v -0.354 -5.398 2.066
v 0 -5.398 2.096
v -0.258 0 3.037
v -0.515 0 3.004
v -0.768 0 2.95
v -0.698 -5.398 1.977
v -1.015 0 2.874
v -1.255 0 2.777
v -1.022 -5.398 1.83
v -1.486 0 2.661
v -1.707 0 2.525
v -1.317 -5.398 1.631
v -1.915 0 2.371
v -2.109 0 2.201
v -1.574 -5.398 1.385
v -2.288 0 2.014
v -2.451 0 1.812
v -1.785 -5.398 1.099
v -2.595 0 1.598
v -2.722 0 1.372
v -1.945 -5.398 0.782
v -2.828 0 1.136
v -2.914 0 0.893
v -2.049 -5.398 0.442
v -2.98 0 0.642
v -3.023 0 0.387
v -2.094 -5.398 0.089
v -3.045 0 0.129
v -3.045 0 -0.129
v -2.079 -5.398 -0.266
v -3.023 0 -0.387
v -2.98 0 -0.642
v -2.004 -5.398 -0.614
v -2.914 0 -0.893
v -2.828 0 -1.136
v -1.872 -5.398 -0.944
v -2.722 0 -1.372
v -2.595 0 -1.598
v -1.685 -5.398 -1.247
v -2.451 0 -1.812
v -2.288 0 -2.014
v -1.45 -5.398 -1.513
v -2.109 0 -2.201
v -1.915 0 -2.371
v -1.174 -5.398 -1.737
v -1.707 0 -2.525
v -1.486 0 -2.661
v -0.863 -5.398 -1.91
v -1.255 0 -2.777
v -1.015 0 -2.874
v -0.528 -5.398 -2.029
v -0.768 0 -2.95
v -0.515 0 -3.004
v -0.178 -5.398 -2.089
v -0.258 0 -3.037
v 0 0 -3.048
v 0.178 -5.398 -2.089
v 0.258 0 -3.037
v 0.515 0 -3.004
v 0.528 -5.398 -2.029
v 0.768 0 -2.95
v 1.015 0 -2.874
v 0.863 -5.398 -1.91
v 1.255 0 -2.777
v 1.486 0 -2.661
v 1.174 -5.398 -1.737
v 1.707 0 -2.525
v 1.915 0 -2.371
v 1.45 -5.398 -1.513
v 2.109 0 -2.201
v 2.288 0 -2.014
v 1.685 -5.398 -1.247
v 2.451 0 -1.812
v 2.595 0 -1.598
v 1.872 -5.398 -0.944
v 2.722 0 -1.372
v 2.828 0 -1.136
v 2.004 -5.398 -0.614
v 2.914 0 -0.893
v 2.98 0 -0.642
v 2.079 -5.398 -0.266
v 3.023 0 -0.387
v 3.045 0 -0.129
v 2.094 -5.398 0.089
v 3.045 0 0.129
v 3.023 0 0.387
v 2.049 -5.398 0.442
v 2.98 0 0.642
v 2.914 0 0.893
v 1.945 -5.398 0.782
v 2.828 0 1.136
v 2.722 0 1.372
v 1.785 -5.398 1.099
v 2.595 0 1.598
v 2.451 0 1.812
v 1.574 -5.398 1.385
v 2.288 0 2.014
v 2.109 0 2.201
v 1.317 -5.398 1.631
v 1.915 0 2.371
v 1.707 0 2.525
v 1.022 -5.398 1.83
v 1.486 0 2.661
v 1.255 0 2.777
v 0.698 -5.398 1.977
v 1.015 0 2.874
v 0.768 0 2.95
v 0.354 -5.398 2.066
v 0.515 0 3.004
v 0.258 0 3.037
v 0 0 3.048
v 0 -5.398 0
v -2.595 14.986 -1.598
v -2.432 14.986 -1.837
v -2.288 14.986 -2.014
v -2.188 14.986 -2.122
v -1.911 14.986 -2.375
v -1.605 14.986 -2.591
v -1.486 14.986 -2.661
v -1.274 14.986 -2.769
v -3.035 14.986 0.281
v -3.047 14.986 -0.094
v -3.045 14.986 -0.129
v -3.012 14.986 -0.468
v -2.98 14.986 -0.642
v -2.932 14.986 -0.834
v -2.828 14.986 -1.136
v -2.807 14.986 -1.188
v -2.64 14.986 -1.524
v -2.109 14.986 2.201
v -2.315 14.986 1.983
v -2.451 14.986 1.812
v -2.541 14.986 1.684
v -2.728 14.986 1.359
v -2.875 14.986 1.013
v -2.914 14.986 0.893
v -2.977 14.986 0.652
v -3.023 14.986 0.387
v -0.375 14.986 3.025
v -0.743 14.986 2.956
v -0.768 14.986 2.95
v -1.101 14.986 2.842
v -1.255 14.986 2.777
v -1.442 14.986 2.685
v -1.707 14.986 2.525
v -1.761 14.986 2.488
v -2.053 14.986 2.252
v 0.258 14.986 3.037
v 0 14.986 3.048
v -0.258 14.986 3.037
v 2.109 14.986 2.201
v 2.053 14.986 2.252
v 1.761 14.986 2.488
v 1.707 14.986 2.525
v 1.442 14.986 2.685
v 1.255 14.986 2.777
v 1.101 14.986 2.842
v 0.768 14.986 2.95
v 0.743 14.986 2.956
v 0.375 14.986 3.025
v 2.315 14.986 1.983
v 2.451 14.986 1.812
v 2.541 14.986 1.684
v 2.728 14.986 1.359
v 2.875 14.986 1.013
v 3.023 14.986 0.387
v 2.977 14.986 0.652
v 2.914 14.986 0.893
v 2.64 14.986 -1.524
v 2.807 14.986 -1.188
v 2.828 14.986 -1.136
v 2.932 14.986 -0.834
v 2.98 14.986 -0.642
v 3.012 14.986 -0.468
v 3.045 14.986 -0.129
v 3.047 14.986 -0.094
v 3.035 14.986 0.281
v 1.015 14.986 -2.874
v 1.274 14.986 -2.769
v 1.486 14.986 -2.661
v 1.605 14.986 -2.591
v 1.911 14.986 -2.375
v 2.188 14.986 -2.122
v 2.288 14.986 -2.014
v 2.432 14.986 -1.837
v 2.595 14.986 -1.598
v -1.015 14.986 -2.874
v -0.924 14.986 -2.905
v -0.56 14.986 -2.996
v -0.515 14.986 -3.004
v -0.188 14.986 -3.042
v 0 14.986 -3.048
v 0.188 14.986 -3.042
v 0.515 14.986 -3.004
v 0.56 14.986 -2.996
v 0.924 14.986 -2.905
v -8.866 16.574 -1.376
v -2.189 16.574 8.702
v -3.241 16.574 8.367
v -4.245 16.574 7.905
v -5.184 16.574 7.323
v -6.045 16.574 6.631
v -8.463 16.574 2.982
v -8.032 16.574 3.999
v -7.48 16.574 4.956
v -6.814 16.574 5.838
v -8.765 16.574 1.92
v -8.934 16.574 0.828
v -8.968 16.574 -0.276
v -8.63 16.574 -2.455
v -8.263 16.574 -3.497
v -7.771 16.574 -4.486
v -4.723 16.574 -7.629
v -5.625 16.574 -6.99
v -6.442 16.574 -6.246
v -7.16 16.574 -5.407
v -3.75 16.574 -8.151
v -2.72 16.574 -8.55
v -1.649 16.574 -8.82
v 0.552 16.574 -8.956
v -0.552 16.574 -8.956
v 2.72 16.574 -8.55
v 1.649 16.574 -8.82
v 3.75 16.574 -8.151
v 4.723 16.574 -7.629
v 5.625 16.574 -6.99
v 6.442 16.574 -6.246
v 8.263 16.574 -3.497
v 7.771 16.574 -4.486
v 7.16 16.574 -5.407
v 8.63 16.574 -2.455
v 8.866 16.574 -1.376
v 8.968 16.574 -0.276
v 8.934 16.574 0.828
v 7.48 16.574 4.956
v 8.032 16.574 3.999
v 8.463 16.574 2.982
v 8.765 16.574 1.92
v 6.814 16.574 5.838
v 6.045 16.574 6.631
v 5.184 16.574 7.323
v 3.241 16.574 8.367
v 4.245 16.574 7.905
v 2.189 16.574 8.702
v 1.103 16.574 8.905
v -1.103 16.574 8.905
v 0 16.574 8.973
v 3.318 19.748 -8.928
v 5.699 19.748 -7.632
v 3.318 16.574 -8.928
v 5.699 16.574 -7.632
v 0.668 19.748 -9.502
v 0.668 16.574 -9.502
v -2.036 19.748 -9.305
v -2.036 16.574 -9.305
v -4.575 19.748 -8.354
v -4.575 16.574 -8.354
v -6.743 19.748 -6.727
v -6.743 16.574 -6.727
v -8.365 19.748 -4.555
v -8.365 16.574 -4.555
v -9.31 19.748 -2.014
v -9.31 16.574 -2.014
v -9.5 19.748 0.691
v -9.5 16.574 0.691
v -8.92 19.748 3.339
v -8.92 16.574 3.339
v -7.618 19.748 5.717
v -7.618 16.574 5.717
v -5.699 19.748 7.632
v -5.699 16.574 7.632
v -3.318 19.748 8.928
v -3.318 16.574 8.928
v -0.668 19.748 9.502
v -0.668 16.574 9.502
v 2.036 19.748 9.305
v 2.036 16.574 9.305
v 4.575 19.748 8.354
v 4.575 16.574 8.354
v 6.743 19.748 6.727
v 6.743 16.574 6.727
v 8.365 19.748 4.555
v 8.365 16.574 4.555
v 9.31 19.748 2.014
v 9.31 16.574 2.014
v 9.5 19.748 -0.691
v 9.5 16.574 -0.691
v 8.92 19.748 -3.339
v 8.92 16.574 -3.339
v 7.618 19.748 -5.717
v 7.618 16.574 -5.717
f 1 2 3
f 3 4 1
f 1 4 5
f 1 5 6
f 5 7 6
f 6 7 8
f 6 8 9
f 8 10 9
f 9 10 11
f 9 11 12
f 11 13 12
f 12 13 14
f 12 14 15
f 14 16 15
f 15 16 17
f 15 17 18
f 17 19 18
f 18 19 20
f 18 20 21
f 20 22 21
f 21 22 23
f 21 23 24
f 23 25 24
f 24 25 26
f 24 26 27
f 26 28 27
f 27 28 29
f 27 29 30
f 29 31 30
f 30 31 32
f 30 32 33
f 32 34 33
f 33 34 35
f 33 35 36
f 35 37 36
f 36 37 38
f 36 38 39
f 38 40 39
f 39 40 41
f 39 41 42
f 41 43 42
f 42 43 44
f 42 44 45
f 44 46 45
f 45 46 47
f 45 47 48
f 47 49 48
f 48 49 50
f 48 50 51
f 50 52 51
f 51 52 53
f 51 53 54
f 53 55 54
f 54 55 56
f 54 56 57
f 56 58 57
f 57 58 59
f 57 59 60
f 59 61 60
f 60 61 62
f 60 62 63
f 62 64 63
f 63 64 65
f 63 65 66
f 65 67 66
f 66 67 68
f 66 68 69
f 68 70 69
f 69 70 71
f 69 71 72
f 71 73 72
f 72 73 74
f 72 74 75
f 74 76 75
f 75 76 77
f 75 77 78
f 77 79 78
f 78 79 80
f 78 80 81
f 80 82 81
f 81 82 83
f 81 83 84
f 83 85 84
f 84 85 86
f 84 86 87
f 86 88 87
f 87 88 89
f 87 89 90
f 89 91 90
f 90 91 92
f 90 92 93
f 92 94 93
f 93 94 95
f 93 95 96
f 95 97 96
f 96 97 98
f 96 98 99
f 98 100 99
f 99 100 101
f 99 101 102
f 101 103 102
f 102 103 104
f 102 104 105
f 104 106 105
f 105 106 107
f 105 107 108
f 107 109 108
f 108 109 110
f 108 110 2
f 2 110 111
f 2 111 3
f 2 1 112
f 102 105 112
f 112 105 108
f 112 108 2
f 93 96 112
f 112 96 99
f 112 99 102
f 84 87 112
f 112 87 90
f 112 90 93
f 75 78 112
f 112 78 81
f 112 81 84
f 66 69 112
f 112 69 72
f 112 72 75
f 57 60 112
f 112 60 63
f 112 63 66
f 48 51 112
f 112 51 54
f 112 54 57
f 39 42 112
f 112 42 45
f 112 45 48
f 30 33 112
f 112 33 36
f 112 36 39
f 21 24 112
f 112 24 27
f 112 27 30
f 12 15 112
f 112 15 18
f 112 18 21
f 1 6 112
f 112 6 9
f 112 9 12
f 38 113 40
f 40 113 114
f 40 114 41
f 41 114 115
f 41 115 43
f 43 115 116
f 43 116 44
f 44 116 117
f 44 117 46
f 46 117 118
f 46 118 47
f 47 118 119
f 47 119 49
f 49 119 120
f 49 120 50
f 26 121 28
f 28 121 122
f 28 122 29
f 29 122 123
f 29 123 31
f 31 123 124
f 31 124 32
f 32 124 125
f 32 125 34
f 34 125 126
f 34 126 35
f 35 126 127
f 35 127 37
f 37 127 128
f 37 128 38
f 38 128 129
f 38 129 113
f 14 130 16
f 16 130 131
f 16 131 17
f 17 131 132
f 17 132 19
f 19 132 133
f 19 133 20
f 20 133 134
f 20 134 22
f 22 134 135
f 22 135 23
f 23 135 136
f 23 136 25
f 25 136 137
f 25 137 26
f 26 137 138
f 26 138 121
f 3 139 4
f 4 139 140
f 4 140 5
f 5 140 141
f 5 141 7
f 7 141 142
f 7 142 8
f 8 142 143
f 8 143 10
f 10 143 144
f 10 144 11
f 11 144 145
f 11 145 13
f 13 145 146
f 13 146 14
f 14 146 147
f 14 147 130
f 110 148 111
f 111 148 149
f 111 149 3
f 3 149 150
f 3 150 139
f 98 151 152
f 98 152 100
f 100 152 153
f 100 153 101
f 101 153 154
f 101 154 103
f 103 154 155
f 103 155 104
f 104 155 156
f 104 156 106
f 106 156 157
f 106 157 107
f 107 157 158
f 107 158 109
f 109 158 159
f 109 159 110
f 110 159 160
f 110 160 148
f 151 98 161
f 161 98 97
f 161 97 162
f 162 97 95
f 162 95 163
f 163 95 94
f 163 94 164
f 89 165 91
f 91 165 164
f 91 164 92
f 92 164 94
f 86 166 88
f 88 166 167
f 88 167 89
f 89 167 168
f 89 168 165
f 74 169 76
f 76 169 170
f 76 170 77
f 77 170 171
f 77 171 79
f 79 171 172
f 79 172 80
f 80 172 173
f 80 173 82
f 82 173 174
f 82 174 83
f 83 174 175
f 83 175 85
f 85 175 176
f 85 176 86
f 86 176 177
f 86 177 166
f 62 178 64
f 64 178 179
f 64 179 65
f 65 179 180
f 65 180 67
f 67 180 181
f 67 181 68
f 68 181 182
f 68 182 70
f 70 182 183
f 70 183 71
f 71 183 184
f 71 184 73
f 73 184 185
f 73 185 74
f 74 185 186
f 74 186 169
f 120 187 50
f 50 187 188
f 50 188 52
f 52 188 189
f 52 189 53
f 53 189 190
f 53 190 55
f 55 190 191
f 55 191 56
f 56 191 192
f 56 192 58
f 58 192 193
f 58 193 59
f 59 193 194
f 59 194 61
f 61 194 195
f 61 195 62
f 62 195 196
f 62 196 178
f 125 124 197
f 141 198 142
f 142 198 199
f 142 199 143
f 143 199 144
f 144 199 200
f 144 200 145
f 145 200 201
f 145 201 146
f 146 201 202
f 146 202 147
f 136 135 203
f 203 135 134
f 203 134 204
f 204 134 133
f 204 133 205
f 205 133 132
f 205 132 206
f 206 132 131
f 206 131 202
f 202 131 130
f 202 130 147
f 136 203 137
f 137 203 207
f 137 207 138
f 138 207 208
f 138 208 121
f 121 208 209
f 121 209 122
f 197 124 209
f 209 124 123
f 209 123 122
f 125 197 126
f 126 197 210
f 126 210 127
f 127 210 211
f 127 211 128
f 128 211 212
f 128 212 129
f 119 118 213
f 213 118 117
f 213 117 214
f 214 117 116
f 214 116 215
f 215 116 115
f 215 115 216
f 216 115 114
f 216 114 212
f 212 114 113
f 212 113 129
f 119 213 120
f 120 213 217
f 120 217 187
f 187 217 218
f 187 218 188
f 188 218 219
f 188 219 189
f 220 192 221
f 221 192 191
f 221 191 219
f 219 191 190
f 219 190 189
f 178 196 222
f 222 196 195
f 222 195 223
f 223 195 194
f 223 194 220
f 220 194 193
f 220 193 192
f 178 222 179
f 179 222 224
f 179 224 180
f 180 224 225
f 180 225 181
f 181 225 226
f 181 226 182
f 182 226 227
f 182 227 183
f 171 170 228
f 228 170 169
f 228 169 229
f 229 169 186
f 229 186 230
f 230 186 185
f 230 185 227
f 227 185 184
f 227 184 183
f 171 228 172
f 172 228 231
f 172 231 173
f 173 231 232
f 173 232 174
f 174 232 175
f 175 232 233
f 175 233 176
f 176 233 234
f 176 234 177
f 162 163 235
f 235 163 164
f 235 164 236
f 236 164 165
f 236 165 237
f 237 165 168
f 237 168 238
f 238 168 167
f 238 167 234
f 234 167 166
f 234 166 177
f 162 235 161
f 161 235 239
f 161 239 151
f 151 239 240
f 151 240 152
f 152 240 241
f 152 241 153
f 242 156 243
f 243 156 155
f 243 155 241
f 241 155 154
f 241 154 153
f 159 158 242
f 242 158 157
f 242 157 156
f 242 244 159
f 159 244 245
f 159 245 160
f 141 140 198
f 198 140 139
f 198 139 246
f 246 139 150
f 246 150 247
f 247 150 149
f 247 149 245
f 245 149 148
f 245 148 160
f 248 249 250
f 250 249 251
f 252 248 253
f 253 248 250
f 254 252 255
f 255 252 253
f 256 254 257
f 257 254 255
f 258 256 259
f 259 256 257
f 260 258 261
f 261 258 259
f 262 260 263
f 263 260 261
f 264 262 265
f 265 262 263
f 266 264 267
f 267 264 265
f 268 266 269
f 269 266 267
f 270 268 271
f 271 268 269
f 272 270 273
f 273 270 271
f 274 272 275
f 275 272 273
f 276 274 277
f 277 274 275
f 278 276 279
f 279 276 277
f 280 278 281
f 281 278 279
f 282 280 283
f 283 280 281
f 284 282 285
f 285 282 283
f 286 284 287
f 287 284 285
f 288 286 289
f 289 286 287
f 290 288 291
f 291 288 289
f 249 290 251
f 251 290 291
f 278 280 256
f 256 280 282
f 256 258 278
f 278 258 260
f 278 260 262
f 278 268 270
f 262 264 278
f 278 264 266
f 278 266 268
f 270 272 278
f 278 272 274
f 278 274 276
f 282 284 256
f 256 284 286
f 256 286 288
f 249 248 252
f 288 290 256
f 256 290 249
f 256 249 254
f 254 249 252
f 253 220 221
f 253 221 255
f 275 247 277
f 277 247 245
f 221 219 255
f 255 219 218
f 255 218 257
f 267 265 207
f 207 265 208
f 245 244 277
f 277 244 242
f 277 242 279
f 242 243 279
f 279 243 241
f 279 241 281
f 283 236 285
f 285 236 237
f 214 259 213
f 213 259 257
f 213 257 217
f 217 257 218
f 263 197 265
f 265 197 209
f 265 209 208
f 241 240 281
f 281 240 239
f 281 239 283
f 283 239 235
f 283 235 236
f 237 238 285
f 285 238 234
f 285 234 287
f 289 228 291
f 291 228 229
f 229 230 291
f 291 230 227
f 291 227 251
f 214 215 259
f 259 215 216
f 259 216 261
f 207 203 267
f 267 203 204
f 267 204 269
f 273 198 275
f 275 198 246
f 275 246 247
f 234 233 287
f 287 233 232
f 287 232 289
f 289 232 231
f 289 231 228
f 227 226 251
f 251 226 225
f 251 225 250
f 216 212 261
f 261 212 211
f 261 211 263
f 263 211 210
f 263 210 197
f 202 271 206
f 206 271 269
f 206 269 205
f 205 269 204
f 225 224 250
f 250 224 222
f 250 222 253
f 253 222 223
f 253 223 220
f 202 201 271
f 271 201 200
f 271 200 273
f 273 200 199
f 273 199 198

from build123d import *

# Parameters (mm, degrees)
SKETCH1_R           = 3.048
BOSS_EXTRUDE1_DEPTH = 5.3975
BOSS_EXTRUDE1_DRAFT = -10
SKETCH3_R           = 3.048
BOSS_EXTRUDE2_DEPTH = 14.986
SKETCH4_R           = 3.048
BOSS_EXTRUDE3_DEPTH = 1.5875
BOSS_EXTRUDE3_DRAFT = -75
BOSS_EXTRUDE5_DEPTH = 3.175


with BuildPart() as part:
    # Sketch1 → Boss-Extrude1 (with draft: the straight prism first)
    with BuildSketch(Plane(origin=(0, 0, 0), x_dir=(1, 0, 0), z_dir=(0, 1, 0))):
        Circle(SKETCH1_R)
    extrude(amount=-BOSS_EXTRUDE1_DEPTH)
    # Boss-Extrude1: the draft: its side faces are tilted about the plane it starts from
    boss_extrude1_sides = [part.faces().sort_by_distance(p)[0] for p in [
        (-3.048, -2.69875, 0),
    ]]
    draft(boss_extrude1_sides, Plane(origin=(0, 0, 0), x_dir=(1, 0, 0), z_dir=(0, 1, 0)), BOSS_EXTRUDE1_DRAFT)

    # Sketch3 → Boss-Extrude2 (add)
    with BuildSketch(Plane(origin=(0, 0, 0), x_dir=(1, 0, 0), z_dir=(0, 1, 0))):
        with Locations(Location((0, 0, 0), (0, 0, 270))):
            Circle(SKETCH3_R)
    extrude(amount=BOSS_EXTRUDE2_DEPTH)


with BuildPart() as boss_extrude3_tool:
    # Sketch4 → Boss-Extrude3 (with draft: the straight prism first)
    with BuildSketch(Plane(origin=(0, 14.986, 0), x_dir=(1, 0, 0), z_dir=(0, 1, 0))):
        with Locations(Location((0, 0, 0), (0, 0, 270))):
            Circle(SKETCH4_R)
    extrude(amount=BOSS_EXTRUDE3_DEPTH)
    # Boss-Extrude3: the draft: its side faces are tilted about the plane it starts from
    boss_extrude3_sides = [boss_extrude3_tool.faces().sort_by_distance(p)[0] for p in [
        (0, 15.77975, -3.048),
    ]]
    draft(boss_extrude3_sides, Plane(origin=(0, 14.986, 0), x_dir=(1, 0, 0), z_dir=(0, 1, 0)), BOSS_EXTRUDE3_DRAFT)


with BuildPart() as part_1:
    add(part.part)

    # Boss-Extrude3: add boss_extrude3_tool
    add(boss_extrude3_tool.part)

    # Sketch6 → Boss-Extrude5 (add)
    with BuildSketch(Plane(origin=(0, 16.5735, 0), x_dir=(1, 0, 0), z_dir=(0, 1, 0))):
        Polygon((3.317975387, 8.928418916), (0.66814778, 9.501536904), (-2.035809185, 9.304896881), (-4.574836998, 8.35442945), (-6.743238725, 6.727135831), (-8.365343354, 4.554849675), (-9.309737615, 2.013556687), (-9.499912302, -0.690862688), (-8.920460592, -3.339312478), (-7.618326217, -5.71723103), (-5.69900036, -7.631973526), (-3.317975387, -8.928418916), (-0.66814778, -9.501536904), (2.035809185, -9.304896881), (4.574836998, -8.35442945), (6.743238725, -6.727135831), (8.365343354, -4.554849675), (9.309737615, -2.013556687), (9.499912302, 0.690862688), (8.920460592, 3.339312478), (7.618326217, 5.71723103), (5.69900036, 7.631973526), align=None)
    extrude(amount=BOSS_EXTRUDE5_DEPTH)


solid = part_1.part
